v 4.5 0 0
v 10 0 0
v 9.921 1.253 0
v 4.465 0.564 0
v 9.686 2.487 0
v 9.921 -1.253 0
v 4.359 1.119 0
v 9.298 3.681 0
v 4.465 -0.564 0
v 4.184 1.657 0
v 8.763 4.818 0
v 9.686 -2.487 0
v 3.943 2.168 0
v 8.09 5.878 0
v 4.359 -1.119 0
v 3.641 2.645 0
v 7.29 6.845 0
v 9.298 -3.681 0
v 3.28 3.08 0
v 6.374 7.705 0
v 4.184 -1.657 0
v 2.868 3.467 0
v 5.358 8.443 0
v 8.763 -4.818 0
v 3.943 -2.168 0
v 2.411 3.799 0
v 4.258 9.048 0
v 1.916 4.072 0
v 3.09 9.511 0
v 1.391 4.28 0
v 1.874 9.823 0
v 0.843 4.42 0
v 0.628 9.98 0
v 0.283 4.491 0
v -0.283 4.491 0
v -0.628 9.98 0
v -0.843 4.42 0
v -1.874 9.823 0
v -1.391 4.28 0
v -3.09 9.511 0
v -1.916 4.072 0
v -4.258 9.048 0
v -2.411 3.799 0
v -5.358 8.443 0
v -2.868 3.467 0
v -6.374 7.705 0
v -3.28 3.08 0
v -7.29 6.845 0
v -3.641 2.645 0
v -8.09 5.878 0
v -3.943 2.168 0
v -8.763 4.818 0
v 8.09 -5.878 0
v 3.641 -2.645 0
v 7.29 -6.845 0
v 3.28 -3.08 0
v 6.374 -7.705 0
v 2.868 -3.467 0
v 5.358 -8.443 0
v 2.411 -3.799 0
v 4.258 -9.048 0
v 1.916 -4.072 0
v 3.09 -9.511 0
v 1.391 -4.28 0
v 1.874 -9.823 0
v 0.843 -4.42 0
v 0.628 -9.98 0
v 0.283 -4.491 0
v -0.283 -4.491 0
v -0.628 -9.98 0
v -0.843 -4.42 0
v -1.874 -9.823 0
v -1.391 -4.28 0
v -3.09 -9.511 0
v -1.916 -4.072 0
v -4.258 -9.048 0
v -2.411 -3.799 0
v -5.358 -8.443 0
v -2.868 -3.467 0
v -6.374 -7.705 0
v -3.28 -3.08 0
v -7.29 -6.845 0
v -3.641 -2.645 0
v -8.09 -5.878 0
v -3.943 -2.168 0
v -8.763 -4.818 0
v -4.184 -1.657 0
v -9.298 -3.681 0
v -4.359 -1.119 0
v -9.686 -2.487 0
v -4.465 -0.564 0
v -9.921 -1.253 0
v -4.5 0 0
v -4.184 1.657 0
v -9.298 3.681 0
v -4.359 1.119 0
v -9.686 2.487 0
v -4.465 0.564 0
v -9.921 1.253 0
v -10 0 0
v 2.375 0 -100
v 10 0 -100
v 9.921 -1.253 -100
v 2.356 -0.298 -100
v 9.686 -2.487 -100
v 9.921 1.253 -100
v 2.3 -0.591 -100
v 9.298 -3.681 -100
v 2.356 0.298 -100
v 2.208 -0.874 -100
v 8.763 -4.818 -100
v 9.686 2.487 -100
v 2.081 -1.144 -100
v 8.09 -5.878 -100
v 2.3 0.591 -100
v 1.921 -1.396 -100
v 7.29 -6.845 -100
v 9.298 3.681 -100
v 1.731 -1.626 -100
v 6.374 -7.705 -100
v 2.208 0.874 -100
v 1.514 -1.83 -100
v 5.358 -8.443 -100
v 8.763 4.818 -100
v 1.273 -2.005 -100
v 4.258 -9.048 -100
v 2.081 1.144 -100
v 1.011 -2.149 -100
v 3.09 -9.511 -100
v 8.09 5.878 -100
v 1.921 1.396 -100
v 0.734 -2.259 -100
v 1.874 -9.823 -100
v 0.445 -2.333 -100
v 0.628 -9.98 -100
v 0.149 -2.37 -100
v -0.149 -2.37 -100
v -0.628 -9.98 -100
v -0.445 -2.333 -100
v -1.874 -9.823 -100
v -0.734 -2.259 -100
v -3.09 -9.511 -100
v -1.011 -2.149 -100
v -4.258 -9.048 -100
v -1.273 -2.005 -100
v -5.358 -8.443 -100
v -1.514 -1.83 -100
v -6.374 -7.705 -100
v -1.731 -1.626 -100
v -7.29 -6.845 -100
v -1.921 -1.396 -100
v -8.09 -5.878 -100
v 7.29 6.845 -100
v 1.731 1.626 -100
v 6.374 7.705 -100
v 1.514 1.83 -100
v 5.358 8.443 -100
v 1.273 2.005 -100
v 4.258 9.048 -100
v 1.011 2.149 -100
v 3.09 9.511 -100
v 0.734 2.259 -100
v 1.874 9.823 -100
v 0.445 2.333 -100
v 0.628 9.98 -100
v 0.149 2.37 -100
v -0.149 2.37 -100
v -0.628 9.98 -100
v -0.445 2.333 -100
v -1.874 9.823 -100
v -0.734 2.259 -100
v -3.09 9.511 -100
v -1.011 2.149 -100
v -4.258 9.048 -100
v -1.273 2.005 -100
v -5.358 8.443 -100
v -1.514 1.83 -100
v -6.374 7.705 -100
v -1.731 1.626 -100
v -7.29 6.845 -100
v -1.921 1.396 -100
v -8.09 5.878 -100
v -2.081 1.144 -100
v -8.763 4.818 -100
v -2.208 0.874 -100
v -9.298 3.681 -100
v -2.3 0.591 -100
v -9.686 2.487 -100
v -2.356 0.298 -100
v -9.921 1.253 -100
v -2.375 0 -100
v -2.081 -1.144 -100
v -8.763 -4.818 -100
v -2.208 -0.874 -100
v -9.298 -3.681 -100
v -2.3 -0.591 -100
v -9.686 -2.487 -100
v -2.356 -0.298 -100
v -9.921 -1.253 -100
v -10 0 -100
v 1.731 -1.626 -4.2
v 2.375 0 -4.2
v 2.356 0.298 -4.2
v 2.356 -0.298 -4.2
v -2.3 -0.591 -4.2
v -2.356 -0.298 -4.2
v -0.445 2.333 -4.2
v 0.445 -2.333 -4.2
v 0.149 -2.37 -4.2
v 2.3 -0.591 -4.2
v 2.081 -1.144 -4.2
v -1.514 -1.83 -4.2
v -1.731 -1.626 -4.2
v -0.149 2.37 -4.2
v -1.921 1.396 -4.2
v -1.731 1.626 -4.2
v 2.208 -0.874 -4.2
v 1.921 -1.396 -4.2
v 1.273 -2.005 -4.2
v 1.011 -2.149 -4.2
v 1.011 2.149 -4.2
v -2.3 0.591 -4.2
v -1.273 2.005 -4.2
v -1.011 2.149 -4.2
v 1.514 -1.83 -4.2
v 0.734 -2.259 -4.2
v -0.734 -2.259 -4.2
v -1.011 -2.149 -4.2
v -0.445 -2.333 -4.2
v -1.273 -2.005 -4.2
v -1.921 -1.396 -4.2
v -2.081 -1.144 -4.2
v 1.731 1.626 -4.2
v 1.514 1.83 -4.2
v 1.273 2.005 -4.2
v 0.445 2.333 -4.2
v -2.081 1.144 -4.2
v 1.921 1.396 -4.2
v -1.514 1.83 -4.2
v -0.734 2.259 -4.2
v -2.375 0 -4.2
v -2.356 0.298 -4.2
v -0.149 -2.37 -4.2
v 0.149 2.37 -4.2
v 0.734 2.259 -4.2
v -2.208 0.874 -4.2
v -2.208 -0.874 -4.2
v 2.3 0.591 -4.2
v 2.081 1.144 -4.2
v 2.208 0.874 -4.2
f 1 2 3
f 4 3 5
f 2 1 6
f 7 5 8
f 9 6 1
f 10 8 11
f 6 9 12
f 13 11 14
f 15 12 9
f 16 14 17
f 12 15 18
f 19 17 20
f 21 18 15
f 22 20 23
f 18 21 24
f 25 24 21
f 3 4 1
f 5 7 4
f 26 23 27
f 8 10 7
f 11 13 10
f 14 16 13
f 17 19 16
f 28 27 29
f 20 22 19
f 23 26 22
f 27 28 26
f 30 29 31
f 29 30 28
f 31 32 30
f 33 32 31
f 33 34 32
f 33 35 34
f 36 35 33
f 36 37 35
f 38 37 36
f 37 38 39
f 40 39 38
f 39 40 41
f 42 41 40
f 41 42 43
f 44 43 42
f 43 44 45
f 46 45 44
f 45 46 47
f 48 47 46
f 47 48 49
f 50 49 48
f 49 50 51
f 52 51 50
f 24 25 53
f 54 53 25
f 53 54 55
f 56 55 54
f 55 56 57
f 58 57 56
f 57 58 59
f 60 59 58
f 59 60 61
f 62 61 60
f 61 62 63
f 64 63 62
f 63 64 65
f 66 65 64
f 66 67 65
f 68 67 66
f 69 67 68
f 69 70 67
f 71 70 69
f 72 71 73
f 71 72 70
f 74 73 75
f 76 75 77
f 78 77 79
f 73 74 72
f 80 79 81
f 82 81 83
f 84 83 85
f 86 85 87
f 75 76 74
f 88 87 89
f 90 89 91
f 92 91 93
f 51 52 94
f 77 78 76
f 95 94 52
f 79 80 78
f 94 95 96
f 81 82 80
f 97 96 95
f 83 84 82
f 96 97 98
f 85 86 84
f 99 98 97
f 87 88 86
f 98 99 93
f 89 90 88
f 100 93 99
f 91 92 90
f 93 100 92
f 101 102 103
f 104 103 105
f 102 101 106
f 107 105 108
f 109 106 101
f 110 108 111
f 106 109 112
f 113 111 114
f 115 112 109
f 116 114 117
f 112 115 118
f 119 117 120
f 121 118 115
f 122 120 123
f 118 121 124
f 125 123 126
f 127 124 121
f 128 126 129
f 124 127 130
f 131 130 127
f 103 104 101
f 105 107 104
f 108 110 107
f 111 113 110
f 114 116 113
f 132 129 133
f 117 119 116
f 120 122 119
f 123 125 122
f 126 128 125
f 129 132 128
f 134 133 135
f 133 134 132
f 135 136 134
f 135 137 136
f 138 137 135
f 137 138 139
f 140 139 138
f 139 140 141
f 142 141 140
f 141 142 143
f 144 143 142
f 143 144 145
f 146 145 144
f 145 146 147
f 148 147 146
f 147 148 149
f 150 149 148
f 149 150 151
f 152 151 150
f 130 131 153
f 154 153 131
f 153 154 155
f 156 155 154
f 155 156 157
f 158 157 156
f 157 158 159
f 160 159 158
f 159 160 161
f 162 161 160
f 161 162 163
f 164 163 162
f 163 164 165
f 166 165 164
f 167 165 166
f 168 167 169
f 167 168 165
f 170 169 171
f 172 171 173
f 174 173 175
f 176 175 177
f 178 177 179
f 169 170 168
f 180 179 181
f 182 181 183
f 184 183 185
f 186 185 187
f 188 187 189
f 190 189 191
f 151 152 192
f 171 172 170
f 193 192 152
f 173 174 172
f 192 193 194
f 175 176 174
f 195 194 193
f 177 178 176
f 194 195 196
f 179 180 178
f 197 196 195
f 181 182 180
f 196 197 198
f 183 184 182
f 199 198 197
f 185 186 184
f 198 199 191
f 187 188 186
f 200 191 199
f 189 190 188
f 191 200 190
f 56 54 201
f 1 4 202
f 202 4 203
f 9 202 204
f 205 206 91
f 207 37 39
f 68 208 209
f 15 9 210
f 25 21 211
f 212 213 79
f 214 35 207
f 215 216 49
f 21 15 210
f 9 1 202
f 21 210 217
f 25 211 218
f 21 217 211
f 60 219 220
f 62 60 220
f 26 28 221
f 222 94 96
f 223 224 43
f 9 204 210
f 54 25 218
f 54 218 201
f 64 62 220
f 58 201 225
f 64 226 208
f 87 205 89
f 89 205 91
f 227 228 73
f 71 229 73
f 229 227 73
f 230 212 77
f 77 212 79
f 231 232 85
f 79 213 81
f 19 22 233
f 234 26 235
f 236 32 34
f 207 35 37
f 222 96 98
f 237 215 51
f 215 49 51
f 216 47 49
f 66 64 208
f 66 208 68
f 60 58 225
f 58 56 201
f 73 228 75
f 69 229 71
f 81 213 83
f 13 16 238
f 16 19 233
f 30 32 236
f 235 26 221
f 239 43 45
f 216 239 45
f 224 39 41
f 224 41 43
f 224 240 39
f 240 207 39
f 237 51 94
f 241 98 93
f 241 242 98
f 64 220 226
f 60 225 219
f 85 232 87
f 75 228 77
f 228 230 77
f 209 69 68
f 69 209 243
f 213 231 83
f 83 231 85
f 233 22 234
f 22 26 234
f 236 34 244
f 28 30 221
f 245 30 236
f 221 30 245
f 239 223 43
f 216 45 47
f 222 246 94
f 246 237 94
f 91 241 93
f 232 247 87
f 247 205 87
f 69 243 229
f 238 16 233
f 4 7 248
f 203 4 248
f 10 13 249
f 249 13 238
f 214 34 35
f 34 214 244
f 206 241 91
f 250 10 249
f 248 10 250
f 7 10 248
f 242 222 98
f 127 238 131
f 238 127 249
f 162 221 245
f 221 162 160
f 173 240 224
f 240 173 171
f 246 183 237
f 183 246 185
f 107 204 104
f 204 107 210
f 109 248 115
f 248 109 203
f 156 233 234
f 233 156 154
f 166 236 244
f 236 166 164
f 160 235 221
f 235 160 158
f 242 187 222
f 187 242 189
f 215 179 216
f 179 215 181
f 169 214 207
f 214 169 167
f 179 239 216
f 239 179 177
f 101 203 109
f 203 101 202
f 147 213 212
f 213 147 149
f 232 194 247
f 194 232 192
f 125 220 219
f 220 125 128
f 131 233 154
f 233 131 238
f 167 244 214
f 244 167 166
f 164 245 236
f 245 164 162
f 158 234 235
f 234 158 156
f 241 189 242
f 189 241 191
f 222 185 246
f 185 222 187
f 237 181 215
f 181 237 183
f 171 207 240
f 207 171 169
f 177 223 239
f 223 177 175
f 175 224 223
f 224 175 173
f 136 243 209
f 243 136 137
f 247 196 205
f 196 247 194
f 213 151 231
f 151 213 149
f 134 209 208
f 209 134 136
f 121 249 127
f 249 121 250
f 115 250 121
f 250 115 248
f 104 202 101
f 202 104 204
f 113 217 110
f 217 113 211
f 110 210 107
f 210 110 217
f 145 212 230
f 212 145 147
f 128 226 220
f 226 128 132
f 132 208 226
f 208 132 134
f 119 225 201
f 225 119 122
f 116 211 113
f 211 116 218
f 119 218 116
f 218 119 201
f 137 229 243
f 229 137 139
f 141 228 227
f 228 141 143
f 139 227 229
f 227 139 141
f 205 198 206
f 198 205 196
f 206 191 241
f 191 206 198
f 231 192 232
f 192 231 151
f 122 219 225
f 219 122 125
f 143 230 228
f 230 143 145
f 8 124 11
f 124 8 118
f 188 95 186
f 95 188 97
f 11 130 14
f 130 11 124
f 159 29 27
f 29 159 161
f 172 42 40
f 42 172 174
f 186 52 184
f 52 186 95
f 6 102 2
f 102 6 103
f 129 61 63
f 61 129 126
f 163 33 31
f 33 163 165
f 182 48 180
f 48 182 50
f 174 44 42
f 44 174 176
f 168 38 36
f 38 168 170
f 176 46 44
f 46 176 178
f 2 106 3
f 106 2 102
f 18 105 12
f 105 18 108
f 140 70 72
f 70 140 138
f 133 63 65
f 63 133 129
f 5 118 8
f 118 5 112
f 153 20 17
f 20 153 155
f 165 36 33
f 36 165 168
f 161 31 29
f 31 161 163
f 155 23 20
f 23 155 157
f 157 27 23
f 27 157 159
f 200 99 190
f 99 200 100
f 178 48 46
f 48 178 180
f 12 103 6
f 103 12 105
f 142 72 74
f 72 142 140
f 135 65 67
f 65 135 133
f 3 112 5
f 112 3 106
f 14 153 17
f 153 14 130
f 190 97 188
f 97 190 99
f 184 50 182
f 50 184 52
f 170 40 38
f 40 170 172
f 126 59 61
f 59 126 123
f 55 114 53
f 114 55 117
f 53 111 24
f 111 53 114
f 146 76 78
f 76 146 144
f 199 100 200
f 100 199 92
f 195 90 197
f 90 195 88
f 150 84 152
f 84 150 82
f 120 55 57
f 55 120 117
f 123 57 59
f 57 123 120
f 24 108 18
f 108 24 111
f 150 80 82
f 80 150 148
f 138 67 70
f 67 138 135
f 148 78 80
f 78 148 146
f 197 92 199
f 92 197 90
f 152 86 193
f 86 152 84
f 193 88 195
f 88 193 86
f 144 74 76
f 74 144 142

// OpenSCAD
$fn = 50;


difference() {
	union() {
		translate(v = [0, 0, -100.0000000000]) {
			cylinder(h = 100, r = 10.0000000000);
		}
		cylinder(h = 0, r = 16.0000000000);
	}
	union() {
		translate(v = [0, 0, 0]) {
			rotate(a = [0, 0, 0]) {
				difference() {
					union() {
						#translate(v = [0, 0, -100.0000000000]) {
							cylinder(h = 100, r = 2.2500000000);
						}
						#translate(v = [0, 0, -4.2000000000]) {
							cylinder(h = 4.2000000000, r = 10.0000000000, r1 = 2.3750000000, r2 = 4.5000000000);
						}
						#translate(v = [0, 0, -100.0000000000]) {
							cylinder(h = 100, r = 2.3750000000);
						}
						#translate(v = [0, 0, -100.0000000000]) {
							cylinder(h = 100, r = 2.2500000000);
						}
					}
					union();
				}
			}
		}
	}
}
